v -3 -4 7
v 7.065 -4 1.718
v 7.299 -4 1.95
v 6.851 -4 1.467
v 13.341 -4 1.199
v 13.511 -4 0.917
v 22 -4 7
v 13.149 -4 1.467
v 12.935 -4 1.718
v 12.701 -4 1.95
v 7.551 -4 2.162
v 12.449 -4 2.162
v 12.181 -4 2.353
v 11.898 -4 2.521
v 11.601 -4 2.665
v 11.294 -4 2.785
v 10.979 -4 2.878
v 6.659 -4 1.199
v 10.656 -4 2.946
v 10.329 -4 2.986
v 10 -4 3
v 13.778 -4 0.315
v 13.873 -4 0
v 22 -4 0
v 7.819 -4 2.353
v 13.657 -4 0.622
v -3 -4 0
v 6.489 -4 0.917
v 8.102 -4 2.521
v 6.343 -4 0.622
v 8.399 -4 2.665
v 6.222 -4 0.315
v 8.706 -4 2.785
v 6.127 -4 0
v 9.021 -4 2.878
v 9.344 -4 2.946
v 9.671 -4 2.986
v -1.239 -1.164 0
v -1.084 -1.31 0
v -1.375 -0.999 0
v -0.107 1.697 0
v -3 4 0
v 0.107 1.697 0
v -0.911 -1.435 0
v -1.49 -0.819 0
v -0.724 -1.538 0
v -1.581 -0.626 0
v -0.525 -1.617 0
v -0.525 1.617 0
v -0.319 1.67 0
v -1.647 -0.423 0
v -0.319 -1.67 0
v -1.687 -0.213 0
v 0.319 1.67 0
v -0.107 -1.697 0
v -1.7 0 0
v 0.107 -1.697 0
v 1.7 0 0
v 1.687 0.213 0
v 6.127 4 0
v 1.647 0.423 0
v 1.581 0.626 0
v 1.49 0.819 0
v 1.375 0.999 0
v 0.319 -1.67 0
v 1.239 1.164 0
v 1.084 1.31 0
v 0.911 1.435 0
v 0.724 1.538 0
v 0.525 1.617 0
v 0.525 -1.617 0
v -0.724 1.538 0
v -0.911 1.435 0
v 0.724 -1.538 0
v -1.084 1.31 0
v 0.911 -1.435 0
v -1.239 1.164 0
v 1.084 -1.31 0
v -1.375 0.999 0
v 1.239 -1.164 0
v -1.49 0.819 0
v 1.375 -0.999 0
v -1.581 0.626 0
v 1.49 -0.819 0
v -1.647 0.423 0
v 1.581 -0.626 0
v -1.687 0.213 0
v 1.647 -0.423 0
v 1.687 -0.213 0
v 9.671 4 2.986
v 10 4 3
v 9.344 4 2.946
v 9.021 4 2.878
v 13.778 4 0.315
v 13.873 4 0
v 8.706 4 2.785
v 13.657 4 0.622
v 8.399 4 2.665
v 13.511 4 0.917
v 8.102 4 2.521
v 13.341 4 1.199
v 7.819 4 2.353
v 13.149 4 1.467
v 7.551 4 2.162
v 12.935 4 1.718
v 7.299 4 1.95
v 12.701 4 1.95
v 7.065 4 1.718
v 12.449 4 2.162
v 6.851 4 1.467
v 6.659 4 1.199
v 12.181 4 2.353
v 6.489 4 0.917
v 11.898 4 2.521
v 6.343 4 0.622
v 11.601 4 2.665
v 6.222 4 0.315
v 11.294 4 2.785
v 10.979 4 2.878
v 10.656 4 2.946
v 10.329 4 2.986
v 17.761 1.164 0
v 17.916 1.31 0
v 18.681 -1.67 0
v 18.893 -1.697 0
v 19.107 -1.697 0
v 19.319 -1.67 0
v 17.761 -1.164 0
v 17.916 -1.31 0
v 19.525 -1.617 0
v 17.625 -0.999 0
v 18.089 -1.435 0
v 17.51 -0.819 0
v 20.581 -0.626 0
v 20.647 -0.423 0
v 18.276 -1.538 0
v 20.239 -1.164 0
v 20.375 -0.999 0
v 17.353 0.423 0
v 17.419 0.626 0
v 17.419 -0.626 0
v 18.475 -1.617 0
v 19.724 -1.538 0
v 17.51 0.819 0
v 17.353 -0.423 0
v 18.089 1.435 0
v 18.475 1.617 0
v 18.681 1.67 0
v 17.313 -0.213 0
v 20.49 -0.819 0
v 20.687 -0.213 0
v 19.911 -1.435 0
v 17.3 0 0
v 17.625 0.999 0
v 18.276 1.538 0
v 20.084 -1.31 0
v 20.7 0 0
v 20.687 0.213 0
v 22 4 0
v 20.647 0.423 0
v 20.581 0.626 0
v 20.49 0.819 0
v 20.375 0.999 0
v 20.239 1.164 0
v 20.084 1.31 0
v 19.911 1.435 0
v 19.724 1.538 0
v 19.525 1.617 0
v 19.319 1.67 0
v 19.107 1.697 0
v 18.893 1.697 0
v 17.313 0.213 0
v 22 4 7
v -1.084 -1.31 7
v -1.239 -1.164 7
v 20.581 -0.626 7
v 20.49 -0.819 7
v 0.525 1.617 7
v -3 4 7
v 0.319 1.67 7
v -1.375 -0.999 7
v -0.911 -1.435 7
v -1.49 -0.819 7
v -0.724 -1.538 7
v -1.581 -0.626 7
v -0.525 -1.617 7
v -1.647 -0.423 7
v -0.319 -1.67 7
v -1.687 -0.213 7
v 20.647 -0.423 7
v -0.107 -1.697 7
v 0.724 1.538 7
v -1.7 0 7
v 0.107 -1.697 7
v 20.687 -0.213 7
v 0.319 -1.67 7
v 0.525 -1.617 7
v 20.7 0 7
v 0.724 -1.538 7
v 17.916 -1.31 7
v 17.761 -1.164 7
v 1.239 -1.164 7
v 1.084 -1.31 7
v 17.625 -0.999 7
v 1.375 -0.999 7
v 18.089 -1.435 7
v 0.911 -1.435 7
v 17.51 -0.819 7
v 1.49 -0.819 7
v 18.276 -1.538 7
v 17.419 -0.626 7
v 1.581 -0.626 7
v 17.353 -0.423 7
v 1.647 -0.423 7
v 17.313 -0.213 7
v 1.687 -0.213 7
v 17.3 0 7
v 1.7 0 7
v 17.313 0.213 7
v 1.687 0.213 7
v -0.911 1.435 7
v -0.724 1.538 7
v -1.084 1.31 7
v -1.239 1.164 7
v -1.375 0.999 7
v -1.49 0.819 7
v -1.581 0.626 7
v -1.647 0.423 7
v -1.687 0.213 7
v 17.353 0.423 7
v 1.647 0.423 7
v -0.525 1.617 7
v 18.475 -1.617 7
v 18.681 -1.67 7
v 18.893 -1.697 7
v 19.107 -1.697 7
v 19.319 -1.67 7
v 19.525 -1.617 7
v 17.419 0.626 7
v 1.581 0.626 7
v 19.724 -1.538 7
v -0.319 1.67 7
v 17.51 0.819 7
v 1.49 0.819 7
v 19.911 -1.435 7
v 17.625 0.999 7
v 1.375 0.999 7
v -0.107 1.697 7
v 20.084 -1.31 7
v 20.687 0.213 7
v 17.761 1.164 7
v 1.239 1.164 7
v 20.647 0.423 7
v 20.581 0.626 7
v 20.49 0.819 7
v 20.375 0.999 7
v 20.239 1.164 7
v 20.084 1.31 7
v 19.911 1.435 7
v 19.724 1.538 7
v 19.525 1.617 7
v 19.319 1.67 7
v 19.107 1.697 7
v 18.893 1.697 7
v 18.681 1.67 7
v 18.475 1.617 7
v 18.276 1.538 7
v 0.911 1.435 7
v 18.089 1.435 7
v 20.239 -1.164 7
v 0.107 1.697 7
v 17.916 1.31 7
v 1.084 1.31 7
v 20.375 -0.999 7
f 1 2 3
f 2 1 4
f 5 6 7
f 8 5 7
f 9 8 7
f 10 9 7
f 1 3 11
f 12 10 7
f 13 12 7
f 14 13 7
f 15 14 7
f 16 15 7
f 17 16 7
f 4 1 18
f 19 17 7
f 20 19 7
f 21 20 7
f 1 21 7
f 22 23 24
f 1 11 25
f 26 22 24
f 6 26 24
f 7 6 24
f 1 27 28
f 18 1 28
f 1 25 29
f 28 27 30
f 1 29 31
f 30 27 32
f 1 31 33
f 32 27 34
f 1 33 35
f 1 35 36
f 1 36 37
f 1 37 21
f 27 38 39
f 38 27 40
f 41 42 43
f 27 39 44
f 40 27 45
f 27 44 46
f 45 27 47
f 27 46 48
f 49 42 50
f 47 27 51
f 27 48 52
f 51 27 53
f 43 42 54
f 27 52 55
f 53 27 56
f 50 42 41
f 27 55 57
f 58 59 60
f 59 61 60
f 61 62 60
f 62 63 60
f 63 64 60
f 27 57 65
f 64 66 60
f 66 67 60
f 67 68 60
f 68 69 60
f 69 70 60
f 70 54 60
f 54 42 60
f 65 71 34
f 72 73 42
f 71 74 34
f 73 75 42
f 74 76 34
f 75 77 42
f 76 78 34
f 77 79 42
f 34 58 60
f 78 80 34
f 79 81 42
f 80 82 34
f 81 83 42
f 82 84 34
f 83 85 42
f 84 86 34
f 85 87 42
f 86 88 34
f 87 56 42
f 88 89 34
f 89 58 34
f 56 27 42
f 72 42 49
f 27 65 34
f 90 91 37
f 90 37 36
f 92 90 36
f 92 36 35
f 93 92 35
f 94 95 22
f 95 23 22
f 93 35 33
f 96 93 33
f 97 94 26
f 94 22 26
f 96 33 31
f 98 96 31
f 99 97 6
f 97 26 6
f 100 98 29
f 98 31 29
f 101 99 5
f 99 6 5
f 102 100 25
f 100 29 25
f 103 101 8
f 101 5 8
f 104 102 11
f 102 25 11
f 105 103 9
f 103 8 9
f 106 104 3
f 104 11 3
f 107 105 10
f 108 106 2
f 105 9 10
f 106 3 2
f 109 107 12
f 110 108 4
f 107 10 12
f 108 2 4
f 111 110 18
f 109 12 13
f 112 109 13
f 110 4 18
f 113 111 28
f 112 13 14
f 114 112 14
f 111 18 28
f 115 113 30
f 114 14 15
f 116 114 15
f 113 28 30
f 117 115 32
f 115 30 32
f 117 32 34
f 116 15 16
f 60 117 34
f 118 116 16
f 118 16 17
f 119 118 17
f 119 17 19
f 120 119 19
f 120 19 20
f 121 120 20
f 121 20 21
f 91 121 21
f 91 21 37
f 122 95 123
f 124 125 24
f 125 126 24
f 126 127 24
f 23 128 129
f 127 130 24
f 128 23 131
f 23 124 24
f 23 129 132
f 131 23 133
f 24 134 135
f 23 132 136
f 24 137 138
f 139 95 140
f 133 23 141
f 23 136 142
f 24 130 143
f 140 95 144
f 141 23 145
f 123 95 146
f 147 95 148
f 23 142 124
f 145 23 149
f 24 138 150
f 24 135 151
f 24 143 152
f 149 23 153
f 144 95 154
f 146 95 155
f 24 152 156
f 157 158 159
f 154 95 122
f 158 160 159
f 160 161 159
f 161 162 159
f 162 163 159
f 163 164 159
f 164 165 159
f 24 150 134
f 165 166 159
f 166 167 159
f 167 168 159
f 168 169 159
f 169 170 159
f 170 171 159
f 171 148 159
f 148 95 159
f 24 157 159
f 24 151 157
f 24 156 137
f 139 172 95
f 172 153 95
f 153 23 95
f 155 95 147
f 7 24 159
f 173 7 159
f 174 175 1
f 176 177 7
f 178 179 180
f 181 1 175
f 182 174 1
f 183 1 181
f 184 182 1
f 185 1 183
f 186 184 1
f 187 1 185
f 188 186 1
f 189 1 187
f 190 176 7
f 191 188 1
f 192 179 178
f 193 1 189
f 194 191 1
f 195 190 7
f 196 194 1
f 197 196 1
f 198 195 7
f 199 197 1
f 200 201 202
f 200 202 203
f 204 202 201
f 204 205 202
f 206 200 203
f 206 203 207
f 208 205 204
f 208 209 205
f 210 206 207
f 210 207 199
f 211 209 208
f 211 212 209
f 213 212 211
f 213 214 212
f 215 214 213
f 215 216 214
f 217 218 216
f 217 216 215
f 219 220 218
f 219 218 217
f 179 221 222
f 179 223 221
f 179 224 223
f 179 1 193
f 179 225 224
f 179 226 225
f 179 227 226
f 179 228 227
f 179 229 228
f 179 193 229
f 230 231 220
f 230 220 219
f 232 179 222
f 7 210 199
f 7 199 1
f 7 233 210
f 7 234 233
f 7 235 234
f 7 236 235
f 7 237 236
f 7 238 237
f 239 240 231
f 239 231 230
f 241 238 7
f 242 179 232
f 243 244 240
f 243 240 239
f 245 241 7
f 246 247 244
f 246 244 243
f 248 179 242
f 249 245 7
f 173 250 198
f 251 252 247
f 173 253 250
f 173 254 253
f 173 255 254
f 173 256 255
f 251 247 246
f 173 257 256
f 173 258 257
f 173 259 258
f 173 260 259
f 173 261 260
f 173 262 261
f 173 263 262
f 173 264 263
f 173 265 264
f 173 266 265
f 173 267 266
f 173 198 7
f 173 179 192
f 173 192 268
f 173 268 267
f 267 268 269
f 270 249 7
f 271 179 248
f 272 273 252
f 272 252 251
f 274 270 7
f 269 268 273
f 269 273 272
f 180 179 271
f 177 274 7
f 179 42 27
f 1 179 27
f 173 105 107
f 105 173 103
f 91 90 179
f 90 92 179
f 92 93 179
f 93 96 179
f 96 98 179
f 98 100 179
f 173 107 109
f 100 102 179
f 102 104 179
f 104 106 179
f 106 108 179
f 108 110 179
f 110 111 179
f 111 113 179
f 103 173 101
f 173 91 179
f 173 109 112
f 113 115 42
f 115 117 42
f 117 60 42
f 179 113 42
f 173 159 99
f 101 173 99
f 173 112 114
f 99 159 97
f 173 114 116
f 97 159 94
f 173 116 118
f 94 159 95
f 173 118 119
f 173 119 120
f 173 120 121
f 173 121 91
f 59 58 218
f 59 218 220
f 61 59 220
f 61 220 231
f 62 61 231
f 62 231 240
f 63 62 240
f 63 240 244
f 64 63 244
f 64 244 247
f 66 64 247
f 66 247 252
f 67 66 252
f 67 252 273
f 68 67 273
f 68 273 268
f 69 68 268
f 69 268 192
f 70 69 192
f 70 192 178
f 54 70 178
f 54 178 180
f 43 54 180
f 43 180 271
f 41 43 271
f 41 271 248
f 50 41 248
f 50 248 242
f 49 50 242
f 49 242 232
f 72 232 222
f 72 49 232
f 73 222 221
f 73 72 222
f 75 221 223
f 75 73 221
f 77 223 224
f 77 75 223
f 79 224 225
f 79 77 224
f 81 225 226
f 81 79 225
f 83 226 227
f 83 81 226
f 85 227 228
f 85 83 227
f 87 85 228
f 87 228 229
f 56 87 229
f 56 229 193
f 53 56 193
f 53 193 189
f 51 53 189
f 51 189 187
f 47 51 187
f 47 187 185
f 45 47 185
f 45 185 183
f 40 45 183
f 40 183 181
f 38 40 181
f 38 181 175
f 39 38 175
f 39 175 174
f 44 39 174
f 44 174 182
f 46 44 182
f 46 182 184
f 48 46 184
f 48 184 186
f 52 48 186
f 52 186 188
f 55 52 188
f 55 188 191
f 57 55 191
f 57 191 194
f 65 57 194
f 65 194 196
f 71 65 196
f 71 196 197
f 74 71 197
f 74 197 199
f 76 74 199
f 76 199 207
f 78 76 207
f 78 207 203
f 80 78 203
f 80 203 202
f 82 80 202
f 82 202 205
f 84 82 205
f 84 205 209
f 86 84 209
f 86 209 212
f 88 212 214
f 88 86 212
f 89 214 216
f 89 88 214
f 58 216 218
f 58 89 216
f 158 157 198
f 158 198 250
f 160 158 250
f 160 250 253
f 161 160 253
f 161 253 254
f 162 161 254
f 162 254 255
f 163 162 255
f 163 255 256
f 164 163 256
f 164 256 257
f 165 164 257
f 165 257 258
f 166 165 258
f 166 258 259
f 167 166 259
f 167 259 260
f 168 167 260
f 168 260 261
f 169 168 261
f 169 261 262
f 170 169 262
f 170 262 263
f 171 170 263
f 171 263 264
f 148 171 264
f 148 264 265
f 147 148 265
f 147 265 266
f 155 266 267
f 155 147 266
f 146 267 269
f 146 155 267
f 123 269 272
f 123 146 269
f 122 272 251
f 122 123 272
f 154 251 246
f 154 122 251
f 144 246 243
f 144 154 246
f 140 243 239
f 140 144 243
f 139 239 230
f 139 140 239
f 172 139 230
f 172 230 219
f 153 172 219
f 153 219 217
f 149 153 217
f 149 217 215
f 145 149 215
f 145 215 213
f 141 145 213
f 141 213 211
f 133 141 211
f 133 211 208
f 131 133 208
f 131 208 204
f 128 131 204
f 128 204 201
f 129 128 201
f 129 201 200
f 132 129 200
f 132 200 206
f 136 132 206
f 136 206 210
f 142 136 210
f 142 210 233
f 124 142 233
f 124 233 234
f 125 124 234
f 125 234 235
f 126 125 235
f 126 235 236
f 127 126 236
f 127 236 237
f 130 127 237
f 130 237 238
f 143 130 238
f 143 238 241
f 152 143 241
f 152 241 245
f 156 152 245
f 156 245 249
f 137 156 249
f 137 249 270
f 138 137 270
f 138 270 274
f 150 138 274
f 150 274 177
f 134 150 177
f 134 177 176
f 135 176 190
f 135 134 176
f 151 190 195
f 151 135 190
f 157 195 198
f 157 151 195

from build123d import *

# Parameters (mm, degrees)
SKETCH_W     = 25
SKETCH_H     = 8
SKETCH_R     = 1.7
PAD_DEPTH    = 7
SKETCH002_R  = 4
POCKET_DEPTH = 8.001


with BuildPart() as part:
    # Sketch → Pad (new body)
    with BuildSketch(Plane.XY):
        with Locations((9.5, 0)):
            Rectangle(SKETCH_W, SKETCH_H)
        Circle(SKETCH_R, mode=Mode.SUBTRACT)
        with Locations((19, 0)):
            Circle(SKETCH_R, mode=Mode.SUBTRACT)
    extrude(amount=PAD_DEPTH)

    # Sketch002 → Pocket (cut, through all)
    with BuildSketch(Plane.XZ.offset(4)):
        with Locations((10, -1)):
            Circle(SKETCH002_R)
    extrude(amount=-POCKET_DEPTH, mode=Mode.SUBTRACT)


solid = part.part
